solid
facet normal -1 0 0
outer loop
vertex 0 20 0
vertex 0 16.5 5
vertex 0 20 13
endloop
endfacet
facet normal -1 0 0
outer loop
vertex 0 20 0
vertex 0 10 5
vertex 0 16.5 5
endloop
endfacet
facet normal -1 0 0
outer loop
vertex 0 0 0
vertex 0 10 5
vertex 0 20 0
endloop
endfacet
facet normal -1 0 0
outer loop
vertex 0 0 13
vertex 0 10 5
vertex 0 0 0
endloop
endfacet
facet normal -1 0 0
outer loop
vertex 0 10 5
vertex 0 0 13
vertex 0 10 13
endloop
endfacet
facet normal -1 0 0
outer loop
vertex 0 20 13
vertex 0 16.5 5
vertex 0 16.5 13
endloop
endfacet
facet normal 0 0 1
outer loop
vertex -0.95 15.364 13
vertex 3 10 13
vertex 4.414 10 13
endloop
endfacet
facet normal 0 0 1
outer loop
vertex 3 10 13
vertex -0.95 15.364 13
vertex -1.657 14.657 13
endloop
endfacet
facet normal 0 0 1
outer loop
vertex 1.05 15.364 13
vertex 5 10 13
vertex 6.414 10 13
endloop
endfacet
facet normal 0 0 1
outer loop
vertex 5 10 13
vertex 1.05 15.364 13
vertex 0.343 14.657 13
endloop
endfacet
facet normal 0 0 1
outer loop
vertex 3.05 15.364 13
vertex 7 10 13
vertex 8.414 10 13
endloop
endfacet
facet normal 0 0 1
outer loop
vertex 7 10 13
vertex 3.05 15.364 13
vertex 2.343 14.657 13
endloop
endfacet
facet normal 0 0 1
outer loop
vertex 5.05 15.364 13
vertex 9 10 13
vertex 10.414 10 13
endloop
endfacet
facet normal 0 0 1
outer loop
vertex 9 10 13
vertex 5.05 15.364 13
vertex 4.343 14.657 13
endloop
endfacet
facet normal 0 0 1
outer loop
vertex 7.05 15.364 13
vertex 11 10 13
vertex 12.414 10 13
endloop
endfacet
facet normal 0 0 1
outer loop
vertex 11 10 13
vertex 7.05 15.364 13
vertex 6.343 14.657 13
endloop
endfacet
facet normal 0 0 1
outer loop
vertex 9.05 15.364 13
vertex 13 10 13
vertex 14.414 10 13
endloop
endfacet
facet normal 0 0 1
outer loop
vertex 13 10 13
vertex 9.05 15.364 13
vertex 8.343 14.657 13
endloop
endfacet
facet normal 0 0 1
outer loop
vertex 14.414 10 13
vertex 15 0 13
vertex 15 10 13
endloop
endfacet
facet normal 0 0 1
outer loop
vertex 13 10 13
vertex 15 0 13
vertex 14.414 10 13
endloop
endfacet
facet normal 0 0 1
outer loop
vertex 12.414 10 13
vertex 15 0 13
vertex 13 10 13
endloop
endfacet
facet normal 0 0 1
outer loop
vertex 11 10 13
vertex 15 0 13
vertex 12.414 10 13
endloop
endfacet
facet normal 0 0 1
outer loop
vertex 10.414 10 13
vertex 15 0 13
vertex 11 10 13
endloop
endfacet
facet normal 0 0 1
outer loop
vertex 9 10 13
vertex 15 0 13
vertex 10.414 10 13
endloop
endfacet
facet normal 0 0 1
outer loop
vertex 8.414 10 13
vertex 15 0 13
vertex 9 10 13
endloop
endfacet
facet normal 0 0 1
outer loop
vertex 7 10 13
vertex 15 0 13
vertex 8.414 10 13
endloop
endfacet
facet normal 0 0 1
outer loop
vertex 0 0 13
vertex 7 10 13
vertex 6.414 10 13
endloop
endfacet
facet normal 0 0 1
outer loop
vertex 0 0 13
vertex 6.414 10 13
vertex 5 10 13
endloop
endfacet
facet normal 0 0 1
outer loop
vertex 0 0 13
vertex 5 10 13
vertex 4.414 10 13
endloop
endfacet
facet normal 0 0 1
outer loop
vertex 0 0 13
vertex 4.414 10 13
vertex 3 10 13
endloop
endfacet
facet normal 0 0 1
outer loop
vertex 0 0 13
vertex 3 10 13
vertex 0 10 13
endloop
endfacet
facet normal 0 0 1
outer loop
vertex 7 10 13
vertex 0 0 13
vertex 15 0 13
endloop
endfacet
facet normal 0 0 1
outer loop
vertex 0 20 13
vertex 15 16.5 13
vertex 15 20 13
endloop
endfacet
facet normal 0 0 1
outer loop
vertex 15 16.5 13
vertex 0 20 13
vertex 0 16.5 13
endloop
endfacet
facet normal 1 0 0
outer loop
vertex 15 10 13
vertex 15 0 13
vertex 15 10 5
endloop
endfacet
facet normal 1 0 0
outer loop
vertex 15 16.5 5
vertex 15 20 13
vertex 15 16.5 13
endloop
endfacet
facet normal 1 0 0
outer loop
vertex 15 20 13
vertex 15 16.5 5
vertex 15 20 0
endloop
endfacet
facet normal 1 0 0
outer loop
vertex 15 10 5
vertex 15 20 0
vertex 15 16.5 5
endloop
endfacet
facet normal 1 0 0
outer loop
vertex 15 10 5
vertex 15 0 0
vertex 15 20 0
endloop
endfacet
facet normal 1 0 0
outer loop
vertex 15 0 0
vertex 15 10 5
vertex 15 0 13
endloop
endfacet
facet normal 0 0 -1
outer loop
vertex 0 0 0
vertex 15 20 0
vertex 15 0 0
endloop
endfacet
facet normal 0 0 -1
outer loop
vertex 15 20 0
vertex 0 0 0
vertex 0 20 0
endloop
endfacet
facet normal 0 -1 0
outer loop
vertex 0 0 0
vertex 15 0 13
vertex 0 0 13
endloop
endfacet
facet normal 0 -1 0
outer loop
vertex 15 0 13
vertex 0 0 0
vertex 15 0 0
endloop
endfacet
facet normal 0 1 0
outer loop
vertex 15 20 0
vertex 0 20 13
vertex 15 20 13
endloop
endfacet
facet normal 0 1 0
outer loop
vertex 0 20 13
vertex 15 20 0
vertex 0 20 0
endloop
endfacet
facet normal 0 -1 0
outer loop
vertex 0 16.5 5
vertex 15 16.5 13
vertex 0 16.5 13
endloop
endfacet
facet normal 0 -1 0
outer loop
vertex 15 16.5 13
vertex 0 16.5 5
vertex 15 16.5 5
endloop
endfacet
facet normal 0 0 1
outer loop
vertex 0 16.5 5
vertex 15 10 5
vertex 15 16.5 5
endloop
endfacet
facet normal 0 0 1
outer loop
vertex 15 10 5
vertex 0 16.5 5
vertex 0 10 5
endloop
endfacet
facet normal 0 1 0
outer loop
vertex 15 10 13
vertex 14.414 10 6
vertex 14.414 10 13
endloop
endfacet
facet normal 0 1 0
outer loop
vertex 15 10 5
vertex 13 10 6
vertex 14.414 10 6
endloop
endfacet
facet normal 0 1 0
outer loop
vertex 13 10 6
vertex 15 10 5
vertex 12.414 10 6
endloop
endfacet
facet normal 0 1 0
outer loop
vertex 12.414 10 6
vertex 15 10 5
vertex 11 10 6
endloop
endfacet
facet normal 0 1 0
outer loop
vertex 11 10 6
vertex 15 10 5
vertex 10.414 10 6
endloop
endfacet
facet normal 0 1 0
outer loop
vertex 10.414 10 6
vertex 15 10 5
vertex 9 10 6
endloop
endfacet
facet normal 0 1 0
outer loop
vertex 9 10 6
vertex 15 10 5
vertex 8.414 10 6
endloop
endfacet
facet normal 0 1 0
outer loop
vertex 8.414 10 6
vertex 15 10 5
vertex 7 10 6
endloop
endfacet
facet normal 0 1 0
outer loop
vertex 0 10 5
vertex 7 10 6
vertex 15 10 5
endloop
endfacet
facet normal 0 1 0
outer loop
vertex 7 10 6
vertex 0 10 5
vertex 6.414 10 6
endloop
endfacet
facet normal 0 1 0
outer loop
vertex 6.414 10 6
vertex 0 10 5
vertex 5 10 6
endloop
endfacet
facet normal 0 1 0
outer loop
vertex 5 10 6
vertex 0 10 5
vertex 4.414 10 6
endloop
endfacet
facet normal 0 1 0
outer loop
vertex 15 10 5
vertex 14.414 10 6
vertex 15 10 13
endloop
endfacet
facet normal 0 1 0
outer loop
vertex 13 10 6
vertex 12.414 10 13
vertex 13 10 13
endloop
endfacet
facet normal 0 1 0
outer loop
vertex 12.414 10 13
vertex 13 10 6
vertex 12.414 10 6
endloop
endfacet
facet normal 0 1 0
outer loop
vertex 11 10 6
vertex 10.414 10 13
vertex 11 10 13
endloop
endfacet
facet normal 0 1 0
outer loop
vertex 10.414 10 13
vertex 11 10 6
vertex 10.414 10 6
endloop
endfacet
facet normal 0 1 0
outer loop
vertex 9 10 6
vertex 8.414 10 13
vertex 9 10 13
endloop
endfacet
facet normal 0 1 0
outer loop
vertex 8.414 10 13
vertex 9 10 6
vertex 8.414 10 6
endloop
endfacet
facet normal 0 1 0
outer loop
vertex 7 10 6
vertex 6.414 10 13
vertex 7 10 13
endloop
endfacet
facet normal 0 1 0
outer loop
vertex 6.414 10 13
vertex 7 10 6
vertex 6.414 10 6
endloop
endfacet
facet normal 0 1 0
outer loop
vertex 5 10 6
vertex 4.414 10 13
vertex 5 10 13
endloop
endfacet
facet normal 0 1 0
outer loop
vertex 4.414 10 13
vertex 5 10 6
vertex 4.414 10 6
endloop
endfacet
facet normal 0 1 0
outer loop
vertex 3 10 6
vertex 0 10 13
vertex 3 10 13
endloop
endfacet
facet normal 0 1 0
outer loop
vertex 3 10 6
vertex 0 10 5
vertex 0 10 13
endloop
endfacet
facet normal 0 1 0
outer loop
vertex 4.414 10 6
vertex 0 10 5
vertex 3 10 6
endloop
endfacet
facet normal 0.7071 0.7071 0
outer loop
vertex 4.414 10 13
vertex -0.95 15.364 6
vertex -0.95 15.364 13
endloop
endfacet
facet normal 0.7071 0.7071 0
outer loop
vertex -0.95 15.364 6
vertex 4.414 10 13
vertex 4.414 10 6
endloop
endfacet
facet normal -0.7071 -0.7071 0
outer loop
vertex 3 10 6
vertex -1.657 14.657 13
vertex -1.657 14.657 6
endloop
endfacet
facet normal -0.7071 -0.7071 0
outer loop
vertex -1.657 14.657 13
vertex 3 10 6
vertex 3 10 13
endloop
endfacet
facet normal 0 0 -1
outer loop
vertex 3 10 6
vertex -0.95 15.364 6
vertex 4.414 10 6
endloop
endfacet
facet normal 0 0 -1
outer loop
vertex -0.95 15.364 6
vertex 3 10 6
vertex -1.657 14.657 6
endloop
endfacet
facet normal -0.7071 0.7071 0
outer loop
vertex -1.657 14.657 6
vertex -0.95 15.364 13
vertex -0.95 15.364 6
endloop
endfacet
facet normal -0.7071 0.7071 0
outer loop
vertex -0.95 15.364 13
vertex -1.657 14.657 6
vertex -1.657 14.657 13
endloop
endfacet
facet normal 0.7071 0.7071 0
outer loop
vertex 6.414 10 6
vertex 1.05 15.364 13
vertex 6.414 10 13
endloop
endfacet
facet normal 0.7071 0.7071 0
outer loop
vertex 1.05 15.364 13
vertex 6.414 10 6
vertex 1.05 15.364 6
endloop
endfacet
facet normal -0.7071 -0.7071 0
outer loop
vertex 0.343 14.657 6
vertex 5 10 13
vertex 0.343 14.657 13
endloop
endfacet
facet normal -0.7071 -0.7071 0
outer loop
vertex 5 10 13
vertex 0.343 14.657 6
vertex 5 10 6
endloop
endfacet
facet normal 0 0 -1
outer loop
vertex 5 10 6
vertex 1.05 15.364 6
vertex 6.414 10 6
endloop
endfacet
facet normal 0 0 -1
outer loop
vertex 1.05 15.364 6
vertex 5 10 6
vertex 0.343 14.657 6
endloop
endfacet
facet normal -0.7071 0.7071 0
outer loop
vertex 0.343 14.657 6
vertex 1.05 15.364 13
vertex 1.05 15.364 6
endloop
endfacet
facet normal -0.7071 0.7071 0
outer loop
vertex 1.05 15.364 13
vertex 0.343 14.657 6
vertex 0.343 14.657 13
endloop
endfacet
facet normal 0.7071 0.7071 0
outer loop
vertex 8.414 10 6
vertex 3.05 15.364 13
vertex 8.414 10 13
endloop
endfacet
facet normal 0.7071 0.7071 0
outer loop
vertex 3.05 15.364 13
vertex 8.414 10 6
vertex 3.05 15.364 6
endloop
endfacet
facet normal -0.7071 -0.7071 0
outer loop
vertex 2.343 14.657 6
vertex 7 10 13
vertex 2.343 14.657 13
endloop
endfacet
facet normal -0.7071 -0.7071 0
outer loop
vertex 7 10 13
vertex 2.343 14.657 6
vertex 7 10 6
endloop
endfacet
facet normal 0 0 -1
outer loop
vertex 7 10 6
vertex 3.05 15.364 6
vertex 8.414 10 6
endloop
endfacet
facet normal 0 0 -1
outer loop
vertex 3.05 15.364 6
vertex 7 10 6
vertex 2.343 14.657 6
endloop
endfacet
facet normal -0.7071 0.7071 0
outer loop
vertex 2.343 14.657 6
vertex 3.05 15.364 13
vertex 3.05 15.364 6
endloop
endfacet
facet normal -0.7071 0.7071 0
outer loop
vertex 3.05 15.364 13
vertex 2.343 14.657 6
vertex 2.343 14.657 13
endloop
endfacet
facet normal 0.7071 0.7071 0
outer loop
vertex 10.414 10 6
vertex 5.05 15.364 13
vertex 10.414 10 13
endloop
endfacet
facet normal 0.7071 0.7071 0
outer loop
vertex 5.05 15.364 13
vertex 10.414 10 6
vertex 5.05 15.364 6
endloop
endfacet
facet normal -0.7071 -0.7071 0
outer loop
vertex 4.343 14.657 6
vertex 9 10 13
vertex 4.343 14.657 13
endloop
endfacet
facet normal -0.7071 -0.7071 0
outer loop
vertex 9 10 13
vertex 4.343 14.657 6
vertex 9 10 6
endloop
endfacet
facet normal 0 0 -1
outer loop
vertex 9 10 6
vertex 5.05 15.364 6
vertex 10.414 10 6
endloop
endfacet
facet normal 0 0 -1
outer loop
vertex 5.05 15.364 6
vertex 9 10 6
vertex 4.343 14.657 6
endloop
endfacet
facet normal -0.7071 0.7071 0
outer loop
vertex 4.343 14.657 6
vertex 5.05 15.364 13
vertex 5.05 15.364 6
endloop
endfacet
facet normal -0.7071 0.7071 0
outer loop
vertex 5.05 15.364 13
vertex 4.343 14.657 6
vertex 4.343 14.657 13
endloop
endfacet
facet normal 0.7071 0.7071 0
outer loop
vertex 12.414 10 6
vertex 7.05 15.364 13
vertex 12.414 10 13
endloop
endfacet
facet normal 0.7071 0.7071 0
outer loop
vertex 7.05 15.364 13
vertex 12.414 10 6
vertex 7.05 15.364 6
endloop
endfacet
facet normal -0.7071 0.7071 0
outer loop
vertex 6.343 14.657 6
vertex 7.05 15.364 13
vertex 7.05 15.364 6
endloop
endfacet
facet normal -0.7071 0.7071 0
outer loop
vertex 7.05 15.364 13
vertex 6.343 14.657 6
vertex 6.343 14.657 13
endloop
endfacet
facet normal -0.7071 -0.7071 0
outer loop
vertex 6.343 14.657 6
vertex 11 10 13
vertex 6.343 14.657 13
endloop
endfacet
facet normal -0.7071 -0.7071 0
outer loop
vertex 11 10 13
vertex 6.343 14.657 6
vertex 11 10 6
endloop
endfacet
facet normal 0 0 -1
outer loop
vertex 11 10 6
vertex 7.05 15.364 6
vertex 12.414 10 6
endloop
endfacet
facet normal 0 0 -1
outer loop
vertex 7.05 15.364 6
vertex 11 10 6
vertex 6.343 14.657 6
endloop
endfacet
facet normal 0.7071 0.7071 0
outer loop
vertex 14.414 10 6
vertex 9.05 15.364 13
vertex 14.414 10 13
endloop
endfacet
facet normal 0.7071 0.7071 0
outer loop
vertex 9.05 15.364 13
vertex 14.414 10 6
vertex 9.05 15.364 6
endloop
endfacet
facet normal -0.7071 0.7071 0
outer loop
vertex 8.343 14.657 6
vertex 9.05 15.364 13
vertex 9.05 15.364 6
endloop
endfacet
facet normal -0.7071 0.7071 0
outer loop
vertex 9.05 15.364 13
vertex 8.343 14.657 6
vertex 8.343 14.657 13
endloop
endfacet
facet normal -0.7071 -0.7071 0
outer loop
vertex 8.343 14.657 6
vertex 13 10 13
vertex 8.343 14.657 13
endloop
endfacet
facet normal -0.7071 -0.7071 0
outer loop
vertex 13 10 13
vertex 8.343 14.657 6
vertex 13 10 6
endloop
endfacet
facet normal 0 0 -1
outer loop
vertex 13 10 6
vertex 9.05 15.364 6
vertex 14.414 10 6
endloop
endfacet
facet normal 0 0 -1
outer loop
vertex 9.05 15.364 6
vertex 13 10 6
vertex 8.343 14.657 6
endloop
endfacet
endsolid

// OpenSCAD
module clip(hh=8, ww=15, ll=5, ddl=1,zl=8){
        cube([ww,ll,hh]);
        translate([4,4,ddl])rotate([0,0,45])cube([1,zl,hh-ddl]);
        translate([6,4,ddl])rotate([0,0,45])cube([1,zl,hh-ddl]);
        translate([8,4,ddl])rotate([0,0,45])cube([1,zl,hh-ddl]);
    translate([10,4,ddl])rotate([0,0,45])cube([1,zl,hh-ddl]);
    translate([12,4,ddl])rotate([0,0,45])cube([1,zl,hh-ddl]);
    translate([14,4,ddl])rotate([0,0,45])cube([1,zl,hh-ddl]);
    //translate([15,4,0])rotate([0,0,45])cube([1,5,hh]);
}

difference(){
    cube([15,20,13]);
    translate([0,5,5])cube([15,11.5,10]);
}
translate([0,5,5])clip();
